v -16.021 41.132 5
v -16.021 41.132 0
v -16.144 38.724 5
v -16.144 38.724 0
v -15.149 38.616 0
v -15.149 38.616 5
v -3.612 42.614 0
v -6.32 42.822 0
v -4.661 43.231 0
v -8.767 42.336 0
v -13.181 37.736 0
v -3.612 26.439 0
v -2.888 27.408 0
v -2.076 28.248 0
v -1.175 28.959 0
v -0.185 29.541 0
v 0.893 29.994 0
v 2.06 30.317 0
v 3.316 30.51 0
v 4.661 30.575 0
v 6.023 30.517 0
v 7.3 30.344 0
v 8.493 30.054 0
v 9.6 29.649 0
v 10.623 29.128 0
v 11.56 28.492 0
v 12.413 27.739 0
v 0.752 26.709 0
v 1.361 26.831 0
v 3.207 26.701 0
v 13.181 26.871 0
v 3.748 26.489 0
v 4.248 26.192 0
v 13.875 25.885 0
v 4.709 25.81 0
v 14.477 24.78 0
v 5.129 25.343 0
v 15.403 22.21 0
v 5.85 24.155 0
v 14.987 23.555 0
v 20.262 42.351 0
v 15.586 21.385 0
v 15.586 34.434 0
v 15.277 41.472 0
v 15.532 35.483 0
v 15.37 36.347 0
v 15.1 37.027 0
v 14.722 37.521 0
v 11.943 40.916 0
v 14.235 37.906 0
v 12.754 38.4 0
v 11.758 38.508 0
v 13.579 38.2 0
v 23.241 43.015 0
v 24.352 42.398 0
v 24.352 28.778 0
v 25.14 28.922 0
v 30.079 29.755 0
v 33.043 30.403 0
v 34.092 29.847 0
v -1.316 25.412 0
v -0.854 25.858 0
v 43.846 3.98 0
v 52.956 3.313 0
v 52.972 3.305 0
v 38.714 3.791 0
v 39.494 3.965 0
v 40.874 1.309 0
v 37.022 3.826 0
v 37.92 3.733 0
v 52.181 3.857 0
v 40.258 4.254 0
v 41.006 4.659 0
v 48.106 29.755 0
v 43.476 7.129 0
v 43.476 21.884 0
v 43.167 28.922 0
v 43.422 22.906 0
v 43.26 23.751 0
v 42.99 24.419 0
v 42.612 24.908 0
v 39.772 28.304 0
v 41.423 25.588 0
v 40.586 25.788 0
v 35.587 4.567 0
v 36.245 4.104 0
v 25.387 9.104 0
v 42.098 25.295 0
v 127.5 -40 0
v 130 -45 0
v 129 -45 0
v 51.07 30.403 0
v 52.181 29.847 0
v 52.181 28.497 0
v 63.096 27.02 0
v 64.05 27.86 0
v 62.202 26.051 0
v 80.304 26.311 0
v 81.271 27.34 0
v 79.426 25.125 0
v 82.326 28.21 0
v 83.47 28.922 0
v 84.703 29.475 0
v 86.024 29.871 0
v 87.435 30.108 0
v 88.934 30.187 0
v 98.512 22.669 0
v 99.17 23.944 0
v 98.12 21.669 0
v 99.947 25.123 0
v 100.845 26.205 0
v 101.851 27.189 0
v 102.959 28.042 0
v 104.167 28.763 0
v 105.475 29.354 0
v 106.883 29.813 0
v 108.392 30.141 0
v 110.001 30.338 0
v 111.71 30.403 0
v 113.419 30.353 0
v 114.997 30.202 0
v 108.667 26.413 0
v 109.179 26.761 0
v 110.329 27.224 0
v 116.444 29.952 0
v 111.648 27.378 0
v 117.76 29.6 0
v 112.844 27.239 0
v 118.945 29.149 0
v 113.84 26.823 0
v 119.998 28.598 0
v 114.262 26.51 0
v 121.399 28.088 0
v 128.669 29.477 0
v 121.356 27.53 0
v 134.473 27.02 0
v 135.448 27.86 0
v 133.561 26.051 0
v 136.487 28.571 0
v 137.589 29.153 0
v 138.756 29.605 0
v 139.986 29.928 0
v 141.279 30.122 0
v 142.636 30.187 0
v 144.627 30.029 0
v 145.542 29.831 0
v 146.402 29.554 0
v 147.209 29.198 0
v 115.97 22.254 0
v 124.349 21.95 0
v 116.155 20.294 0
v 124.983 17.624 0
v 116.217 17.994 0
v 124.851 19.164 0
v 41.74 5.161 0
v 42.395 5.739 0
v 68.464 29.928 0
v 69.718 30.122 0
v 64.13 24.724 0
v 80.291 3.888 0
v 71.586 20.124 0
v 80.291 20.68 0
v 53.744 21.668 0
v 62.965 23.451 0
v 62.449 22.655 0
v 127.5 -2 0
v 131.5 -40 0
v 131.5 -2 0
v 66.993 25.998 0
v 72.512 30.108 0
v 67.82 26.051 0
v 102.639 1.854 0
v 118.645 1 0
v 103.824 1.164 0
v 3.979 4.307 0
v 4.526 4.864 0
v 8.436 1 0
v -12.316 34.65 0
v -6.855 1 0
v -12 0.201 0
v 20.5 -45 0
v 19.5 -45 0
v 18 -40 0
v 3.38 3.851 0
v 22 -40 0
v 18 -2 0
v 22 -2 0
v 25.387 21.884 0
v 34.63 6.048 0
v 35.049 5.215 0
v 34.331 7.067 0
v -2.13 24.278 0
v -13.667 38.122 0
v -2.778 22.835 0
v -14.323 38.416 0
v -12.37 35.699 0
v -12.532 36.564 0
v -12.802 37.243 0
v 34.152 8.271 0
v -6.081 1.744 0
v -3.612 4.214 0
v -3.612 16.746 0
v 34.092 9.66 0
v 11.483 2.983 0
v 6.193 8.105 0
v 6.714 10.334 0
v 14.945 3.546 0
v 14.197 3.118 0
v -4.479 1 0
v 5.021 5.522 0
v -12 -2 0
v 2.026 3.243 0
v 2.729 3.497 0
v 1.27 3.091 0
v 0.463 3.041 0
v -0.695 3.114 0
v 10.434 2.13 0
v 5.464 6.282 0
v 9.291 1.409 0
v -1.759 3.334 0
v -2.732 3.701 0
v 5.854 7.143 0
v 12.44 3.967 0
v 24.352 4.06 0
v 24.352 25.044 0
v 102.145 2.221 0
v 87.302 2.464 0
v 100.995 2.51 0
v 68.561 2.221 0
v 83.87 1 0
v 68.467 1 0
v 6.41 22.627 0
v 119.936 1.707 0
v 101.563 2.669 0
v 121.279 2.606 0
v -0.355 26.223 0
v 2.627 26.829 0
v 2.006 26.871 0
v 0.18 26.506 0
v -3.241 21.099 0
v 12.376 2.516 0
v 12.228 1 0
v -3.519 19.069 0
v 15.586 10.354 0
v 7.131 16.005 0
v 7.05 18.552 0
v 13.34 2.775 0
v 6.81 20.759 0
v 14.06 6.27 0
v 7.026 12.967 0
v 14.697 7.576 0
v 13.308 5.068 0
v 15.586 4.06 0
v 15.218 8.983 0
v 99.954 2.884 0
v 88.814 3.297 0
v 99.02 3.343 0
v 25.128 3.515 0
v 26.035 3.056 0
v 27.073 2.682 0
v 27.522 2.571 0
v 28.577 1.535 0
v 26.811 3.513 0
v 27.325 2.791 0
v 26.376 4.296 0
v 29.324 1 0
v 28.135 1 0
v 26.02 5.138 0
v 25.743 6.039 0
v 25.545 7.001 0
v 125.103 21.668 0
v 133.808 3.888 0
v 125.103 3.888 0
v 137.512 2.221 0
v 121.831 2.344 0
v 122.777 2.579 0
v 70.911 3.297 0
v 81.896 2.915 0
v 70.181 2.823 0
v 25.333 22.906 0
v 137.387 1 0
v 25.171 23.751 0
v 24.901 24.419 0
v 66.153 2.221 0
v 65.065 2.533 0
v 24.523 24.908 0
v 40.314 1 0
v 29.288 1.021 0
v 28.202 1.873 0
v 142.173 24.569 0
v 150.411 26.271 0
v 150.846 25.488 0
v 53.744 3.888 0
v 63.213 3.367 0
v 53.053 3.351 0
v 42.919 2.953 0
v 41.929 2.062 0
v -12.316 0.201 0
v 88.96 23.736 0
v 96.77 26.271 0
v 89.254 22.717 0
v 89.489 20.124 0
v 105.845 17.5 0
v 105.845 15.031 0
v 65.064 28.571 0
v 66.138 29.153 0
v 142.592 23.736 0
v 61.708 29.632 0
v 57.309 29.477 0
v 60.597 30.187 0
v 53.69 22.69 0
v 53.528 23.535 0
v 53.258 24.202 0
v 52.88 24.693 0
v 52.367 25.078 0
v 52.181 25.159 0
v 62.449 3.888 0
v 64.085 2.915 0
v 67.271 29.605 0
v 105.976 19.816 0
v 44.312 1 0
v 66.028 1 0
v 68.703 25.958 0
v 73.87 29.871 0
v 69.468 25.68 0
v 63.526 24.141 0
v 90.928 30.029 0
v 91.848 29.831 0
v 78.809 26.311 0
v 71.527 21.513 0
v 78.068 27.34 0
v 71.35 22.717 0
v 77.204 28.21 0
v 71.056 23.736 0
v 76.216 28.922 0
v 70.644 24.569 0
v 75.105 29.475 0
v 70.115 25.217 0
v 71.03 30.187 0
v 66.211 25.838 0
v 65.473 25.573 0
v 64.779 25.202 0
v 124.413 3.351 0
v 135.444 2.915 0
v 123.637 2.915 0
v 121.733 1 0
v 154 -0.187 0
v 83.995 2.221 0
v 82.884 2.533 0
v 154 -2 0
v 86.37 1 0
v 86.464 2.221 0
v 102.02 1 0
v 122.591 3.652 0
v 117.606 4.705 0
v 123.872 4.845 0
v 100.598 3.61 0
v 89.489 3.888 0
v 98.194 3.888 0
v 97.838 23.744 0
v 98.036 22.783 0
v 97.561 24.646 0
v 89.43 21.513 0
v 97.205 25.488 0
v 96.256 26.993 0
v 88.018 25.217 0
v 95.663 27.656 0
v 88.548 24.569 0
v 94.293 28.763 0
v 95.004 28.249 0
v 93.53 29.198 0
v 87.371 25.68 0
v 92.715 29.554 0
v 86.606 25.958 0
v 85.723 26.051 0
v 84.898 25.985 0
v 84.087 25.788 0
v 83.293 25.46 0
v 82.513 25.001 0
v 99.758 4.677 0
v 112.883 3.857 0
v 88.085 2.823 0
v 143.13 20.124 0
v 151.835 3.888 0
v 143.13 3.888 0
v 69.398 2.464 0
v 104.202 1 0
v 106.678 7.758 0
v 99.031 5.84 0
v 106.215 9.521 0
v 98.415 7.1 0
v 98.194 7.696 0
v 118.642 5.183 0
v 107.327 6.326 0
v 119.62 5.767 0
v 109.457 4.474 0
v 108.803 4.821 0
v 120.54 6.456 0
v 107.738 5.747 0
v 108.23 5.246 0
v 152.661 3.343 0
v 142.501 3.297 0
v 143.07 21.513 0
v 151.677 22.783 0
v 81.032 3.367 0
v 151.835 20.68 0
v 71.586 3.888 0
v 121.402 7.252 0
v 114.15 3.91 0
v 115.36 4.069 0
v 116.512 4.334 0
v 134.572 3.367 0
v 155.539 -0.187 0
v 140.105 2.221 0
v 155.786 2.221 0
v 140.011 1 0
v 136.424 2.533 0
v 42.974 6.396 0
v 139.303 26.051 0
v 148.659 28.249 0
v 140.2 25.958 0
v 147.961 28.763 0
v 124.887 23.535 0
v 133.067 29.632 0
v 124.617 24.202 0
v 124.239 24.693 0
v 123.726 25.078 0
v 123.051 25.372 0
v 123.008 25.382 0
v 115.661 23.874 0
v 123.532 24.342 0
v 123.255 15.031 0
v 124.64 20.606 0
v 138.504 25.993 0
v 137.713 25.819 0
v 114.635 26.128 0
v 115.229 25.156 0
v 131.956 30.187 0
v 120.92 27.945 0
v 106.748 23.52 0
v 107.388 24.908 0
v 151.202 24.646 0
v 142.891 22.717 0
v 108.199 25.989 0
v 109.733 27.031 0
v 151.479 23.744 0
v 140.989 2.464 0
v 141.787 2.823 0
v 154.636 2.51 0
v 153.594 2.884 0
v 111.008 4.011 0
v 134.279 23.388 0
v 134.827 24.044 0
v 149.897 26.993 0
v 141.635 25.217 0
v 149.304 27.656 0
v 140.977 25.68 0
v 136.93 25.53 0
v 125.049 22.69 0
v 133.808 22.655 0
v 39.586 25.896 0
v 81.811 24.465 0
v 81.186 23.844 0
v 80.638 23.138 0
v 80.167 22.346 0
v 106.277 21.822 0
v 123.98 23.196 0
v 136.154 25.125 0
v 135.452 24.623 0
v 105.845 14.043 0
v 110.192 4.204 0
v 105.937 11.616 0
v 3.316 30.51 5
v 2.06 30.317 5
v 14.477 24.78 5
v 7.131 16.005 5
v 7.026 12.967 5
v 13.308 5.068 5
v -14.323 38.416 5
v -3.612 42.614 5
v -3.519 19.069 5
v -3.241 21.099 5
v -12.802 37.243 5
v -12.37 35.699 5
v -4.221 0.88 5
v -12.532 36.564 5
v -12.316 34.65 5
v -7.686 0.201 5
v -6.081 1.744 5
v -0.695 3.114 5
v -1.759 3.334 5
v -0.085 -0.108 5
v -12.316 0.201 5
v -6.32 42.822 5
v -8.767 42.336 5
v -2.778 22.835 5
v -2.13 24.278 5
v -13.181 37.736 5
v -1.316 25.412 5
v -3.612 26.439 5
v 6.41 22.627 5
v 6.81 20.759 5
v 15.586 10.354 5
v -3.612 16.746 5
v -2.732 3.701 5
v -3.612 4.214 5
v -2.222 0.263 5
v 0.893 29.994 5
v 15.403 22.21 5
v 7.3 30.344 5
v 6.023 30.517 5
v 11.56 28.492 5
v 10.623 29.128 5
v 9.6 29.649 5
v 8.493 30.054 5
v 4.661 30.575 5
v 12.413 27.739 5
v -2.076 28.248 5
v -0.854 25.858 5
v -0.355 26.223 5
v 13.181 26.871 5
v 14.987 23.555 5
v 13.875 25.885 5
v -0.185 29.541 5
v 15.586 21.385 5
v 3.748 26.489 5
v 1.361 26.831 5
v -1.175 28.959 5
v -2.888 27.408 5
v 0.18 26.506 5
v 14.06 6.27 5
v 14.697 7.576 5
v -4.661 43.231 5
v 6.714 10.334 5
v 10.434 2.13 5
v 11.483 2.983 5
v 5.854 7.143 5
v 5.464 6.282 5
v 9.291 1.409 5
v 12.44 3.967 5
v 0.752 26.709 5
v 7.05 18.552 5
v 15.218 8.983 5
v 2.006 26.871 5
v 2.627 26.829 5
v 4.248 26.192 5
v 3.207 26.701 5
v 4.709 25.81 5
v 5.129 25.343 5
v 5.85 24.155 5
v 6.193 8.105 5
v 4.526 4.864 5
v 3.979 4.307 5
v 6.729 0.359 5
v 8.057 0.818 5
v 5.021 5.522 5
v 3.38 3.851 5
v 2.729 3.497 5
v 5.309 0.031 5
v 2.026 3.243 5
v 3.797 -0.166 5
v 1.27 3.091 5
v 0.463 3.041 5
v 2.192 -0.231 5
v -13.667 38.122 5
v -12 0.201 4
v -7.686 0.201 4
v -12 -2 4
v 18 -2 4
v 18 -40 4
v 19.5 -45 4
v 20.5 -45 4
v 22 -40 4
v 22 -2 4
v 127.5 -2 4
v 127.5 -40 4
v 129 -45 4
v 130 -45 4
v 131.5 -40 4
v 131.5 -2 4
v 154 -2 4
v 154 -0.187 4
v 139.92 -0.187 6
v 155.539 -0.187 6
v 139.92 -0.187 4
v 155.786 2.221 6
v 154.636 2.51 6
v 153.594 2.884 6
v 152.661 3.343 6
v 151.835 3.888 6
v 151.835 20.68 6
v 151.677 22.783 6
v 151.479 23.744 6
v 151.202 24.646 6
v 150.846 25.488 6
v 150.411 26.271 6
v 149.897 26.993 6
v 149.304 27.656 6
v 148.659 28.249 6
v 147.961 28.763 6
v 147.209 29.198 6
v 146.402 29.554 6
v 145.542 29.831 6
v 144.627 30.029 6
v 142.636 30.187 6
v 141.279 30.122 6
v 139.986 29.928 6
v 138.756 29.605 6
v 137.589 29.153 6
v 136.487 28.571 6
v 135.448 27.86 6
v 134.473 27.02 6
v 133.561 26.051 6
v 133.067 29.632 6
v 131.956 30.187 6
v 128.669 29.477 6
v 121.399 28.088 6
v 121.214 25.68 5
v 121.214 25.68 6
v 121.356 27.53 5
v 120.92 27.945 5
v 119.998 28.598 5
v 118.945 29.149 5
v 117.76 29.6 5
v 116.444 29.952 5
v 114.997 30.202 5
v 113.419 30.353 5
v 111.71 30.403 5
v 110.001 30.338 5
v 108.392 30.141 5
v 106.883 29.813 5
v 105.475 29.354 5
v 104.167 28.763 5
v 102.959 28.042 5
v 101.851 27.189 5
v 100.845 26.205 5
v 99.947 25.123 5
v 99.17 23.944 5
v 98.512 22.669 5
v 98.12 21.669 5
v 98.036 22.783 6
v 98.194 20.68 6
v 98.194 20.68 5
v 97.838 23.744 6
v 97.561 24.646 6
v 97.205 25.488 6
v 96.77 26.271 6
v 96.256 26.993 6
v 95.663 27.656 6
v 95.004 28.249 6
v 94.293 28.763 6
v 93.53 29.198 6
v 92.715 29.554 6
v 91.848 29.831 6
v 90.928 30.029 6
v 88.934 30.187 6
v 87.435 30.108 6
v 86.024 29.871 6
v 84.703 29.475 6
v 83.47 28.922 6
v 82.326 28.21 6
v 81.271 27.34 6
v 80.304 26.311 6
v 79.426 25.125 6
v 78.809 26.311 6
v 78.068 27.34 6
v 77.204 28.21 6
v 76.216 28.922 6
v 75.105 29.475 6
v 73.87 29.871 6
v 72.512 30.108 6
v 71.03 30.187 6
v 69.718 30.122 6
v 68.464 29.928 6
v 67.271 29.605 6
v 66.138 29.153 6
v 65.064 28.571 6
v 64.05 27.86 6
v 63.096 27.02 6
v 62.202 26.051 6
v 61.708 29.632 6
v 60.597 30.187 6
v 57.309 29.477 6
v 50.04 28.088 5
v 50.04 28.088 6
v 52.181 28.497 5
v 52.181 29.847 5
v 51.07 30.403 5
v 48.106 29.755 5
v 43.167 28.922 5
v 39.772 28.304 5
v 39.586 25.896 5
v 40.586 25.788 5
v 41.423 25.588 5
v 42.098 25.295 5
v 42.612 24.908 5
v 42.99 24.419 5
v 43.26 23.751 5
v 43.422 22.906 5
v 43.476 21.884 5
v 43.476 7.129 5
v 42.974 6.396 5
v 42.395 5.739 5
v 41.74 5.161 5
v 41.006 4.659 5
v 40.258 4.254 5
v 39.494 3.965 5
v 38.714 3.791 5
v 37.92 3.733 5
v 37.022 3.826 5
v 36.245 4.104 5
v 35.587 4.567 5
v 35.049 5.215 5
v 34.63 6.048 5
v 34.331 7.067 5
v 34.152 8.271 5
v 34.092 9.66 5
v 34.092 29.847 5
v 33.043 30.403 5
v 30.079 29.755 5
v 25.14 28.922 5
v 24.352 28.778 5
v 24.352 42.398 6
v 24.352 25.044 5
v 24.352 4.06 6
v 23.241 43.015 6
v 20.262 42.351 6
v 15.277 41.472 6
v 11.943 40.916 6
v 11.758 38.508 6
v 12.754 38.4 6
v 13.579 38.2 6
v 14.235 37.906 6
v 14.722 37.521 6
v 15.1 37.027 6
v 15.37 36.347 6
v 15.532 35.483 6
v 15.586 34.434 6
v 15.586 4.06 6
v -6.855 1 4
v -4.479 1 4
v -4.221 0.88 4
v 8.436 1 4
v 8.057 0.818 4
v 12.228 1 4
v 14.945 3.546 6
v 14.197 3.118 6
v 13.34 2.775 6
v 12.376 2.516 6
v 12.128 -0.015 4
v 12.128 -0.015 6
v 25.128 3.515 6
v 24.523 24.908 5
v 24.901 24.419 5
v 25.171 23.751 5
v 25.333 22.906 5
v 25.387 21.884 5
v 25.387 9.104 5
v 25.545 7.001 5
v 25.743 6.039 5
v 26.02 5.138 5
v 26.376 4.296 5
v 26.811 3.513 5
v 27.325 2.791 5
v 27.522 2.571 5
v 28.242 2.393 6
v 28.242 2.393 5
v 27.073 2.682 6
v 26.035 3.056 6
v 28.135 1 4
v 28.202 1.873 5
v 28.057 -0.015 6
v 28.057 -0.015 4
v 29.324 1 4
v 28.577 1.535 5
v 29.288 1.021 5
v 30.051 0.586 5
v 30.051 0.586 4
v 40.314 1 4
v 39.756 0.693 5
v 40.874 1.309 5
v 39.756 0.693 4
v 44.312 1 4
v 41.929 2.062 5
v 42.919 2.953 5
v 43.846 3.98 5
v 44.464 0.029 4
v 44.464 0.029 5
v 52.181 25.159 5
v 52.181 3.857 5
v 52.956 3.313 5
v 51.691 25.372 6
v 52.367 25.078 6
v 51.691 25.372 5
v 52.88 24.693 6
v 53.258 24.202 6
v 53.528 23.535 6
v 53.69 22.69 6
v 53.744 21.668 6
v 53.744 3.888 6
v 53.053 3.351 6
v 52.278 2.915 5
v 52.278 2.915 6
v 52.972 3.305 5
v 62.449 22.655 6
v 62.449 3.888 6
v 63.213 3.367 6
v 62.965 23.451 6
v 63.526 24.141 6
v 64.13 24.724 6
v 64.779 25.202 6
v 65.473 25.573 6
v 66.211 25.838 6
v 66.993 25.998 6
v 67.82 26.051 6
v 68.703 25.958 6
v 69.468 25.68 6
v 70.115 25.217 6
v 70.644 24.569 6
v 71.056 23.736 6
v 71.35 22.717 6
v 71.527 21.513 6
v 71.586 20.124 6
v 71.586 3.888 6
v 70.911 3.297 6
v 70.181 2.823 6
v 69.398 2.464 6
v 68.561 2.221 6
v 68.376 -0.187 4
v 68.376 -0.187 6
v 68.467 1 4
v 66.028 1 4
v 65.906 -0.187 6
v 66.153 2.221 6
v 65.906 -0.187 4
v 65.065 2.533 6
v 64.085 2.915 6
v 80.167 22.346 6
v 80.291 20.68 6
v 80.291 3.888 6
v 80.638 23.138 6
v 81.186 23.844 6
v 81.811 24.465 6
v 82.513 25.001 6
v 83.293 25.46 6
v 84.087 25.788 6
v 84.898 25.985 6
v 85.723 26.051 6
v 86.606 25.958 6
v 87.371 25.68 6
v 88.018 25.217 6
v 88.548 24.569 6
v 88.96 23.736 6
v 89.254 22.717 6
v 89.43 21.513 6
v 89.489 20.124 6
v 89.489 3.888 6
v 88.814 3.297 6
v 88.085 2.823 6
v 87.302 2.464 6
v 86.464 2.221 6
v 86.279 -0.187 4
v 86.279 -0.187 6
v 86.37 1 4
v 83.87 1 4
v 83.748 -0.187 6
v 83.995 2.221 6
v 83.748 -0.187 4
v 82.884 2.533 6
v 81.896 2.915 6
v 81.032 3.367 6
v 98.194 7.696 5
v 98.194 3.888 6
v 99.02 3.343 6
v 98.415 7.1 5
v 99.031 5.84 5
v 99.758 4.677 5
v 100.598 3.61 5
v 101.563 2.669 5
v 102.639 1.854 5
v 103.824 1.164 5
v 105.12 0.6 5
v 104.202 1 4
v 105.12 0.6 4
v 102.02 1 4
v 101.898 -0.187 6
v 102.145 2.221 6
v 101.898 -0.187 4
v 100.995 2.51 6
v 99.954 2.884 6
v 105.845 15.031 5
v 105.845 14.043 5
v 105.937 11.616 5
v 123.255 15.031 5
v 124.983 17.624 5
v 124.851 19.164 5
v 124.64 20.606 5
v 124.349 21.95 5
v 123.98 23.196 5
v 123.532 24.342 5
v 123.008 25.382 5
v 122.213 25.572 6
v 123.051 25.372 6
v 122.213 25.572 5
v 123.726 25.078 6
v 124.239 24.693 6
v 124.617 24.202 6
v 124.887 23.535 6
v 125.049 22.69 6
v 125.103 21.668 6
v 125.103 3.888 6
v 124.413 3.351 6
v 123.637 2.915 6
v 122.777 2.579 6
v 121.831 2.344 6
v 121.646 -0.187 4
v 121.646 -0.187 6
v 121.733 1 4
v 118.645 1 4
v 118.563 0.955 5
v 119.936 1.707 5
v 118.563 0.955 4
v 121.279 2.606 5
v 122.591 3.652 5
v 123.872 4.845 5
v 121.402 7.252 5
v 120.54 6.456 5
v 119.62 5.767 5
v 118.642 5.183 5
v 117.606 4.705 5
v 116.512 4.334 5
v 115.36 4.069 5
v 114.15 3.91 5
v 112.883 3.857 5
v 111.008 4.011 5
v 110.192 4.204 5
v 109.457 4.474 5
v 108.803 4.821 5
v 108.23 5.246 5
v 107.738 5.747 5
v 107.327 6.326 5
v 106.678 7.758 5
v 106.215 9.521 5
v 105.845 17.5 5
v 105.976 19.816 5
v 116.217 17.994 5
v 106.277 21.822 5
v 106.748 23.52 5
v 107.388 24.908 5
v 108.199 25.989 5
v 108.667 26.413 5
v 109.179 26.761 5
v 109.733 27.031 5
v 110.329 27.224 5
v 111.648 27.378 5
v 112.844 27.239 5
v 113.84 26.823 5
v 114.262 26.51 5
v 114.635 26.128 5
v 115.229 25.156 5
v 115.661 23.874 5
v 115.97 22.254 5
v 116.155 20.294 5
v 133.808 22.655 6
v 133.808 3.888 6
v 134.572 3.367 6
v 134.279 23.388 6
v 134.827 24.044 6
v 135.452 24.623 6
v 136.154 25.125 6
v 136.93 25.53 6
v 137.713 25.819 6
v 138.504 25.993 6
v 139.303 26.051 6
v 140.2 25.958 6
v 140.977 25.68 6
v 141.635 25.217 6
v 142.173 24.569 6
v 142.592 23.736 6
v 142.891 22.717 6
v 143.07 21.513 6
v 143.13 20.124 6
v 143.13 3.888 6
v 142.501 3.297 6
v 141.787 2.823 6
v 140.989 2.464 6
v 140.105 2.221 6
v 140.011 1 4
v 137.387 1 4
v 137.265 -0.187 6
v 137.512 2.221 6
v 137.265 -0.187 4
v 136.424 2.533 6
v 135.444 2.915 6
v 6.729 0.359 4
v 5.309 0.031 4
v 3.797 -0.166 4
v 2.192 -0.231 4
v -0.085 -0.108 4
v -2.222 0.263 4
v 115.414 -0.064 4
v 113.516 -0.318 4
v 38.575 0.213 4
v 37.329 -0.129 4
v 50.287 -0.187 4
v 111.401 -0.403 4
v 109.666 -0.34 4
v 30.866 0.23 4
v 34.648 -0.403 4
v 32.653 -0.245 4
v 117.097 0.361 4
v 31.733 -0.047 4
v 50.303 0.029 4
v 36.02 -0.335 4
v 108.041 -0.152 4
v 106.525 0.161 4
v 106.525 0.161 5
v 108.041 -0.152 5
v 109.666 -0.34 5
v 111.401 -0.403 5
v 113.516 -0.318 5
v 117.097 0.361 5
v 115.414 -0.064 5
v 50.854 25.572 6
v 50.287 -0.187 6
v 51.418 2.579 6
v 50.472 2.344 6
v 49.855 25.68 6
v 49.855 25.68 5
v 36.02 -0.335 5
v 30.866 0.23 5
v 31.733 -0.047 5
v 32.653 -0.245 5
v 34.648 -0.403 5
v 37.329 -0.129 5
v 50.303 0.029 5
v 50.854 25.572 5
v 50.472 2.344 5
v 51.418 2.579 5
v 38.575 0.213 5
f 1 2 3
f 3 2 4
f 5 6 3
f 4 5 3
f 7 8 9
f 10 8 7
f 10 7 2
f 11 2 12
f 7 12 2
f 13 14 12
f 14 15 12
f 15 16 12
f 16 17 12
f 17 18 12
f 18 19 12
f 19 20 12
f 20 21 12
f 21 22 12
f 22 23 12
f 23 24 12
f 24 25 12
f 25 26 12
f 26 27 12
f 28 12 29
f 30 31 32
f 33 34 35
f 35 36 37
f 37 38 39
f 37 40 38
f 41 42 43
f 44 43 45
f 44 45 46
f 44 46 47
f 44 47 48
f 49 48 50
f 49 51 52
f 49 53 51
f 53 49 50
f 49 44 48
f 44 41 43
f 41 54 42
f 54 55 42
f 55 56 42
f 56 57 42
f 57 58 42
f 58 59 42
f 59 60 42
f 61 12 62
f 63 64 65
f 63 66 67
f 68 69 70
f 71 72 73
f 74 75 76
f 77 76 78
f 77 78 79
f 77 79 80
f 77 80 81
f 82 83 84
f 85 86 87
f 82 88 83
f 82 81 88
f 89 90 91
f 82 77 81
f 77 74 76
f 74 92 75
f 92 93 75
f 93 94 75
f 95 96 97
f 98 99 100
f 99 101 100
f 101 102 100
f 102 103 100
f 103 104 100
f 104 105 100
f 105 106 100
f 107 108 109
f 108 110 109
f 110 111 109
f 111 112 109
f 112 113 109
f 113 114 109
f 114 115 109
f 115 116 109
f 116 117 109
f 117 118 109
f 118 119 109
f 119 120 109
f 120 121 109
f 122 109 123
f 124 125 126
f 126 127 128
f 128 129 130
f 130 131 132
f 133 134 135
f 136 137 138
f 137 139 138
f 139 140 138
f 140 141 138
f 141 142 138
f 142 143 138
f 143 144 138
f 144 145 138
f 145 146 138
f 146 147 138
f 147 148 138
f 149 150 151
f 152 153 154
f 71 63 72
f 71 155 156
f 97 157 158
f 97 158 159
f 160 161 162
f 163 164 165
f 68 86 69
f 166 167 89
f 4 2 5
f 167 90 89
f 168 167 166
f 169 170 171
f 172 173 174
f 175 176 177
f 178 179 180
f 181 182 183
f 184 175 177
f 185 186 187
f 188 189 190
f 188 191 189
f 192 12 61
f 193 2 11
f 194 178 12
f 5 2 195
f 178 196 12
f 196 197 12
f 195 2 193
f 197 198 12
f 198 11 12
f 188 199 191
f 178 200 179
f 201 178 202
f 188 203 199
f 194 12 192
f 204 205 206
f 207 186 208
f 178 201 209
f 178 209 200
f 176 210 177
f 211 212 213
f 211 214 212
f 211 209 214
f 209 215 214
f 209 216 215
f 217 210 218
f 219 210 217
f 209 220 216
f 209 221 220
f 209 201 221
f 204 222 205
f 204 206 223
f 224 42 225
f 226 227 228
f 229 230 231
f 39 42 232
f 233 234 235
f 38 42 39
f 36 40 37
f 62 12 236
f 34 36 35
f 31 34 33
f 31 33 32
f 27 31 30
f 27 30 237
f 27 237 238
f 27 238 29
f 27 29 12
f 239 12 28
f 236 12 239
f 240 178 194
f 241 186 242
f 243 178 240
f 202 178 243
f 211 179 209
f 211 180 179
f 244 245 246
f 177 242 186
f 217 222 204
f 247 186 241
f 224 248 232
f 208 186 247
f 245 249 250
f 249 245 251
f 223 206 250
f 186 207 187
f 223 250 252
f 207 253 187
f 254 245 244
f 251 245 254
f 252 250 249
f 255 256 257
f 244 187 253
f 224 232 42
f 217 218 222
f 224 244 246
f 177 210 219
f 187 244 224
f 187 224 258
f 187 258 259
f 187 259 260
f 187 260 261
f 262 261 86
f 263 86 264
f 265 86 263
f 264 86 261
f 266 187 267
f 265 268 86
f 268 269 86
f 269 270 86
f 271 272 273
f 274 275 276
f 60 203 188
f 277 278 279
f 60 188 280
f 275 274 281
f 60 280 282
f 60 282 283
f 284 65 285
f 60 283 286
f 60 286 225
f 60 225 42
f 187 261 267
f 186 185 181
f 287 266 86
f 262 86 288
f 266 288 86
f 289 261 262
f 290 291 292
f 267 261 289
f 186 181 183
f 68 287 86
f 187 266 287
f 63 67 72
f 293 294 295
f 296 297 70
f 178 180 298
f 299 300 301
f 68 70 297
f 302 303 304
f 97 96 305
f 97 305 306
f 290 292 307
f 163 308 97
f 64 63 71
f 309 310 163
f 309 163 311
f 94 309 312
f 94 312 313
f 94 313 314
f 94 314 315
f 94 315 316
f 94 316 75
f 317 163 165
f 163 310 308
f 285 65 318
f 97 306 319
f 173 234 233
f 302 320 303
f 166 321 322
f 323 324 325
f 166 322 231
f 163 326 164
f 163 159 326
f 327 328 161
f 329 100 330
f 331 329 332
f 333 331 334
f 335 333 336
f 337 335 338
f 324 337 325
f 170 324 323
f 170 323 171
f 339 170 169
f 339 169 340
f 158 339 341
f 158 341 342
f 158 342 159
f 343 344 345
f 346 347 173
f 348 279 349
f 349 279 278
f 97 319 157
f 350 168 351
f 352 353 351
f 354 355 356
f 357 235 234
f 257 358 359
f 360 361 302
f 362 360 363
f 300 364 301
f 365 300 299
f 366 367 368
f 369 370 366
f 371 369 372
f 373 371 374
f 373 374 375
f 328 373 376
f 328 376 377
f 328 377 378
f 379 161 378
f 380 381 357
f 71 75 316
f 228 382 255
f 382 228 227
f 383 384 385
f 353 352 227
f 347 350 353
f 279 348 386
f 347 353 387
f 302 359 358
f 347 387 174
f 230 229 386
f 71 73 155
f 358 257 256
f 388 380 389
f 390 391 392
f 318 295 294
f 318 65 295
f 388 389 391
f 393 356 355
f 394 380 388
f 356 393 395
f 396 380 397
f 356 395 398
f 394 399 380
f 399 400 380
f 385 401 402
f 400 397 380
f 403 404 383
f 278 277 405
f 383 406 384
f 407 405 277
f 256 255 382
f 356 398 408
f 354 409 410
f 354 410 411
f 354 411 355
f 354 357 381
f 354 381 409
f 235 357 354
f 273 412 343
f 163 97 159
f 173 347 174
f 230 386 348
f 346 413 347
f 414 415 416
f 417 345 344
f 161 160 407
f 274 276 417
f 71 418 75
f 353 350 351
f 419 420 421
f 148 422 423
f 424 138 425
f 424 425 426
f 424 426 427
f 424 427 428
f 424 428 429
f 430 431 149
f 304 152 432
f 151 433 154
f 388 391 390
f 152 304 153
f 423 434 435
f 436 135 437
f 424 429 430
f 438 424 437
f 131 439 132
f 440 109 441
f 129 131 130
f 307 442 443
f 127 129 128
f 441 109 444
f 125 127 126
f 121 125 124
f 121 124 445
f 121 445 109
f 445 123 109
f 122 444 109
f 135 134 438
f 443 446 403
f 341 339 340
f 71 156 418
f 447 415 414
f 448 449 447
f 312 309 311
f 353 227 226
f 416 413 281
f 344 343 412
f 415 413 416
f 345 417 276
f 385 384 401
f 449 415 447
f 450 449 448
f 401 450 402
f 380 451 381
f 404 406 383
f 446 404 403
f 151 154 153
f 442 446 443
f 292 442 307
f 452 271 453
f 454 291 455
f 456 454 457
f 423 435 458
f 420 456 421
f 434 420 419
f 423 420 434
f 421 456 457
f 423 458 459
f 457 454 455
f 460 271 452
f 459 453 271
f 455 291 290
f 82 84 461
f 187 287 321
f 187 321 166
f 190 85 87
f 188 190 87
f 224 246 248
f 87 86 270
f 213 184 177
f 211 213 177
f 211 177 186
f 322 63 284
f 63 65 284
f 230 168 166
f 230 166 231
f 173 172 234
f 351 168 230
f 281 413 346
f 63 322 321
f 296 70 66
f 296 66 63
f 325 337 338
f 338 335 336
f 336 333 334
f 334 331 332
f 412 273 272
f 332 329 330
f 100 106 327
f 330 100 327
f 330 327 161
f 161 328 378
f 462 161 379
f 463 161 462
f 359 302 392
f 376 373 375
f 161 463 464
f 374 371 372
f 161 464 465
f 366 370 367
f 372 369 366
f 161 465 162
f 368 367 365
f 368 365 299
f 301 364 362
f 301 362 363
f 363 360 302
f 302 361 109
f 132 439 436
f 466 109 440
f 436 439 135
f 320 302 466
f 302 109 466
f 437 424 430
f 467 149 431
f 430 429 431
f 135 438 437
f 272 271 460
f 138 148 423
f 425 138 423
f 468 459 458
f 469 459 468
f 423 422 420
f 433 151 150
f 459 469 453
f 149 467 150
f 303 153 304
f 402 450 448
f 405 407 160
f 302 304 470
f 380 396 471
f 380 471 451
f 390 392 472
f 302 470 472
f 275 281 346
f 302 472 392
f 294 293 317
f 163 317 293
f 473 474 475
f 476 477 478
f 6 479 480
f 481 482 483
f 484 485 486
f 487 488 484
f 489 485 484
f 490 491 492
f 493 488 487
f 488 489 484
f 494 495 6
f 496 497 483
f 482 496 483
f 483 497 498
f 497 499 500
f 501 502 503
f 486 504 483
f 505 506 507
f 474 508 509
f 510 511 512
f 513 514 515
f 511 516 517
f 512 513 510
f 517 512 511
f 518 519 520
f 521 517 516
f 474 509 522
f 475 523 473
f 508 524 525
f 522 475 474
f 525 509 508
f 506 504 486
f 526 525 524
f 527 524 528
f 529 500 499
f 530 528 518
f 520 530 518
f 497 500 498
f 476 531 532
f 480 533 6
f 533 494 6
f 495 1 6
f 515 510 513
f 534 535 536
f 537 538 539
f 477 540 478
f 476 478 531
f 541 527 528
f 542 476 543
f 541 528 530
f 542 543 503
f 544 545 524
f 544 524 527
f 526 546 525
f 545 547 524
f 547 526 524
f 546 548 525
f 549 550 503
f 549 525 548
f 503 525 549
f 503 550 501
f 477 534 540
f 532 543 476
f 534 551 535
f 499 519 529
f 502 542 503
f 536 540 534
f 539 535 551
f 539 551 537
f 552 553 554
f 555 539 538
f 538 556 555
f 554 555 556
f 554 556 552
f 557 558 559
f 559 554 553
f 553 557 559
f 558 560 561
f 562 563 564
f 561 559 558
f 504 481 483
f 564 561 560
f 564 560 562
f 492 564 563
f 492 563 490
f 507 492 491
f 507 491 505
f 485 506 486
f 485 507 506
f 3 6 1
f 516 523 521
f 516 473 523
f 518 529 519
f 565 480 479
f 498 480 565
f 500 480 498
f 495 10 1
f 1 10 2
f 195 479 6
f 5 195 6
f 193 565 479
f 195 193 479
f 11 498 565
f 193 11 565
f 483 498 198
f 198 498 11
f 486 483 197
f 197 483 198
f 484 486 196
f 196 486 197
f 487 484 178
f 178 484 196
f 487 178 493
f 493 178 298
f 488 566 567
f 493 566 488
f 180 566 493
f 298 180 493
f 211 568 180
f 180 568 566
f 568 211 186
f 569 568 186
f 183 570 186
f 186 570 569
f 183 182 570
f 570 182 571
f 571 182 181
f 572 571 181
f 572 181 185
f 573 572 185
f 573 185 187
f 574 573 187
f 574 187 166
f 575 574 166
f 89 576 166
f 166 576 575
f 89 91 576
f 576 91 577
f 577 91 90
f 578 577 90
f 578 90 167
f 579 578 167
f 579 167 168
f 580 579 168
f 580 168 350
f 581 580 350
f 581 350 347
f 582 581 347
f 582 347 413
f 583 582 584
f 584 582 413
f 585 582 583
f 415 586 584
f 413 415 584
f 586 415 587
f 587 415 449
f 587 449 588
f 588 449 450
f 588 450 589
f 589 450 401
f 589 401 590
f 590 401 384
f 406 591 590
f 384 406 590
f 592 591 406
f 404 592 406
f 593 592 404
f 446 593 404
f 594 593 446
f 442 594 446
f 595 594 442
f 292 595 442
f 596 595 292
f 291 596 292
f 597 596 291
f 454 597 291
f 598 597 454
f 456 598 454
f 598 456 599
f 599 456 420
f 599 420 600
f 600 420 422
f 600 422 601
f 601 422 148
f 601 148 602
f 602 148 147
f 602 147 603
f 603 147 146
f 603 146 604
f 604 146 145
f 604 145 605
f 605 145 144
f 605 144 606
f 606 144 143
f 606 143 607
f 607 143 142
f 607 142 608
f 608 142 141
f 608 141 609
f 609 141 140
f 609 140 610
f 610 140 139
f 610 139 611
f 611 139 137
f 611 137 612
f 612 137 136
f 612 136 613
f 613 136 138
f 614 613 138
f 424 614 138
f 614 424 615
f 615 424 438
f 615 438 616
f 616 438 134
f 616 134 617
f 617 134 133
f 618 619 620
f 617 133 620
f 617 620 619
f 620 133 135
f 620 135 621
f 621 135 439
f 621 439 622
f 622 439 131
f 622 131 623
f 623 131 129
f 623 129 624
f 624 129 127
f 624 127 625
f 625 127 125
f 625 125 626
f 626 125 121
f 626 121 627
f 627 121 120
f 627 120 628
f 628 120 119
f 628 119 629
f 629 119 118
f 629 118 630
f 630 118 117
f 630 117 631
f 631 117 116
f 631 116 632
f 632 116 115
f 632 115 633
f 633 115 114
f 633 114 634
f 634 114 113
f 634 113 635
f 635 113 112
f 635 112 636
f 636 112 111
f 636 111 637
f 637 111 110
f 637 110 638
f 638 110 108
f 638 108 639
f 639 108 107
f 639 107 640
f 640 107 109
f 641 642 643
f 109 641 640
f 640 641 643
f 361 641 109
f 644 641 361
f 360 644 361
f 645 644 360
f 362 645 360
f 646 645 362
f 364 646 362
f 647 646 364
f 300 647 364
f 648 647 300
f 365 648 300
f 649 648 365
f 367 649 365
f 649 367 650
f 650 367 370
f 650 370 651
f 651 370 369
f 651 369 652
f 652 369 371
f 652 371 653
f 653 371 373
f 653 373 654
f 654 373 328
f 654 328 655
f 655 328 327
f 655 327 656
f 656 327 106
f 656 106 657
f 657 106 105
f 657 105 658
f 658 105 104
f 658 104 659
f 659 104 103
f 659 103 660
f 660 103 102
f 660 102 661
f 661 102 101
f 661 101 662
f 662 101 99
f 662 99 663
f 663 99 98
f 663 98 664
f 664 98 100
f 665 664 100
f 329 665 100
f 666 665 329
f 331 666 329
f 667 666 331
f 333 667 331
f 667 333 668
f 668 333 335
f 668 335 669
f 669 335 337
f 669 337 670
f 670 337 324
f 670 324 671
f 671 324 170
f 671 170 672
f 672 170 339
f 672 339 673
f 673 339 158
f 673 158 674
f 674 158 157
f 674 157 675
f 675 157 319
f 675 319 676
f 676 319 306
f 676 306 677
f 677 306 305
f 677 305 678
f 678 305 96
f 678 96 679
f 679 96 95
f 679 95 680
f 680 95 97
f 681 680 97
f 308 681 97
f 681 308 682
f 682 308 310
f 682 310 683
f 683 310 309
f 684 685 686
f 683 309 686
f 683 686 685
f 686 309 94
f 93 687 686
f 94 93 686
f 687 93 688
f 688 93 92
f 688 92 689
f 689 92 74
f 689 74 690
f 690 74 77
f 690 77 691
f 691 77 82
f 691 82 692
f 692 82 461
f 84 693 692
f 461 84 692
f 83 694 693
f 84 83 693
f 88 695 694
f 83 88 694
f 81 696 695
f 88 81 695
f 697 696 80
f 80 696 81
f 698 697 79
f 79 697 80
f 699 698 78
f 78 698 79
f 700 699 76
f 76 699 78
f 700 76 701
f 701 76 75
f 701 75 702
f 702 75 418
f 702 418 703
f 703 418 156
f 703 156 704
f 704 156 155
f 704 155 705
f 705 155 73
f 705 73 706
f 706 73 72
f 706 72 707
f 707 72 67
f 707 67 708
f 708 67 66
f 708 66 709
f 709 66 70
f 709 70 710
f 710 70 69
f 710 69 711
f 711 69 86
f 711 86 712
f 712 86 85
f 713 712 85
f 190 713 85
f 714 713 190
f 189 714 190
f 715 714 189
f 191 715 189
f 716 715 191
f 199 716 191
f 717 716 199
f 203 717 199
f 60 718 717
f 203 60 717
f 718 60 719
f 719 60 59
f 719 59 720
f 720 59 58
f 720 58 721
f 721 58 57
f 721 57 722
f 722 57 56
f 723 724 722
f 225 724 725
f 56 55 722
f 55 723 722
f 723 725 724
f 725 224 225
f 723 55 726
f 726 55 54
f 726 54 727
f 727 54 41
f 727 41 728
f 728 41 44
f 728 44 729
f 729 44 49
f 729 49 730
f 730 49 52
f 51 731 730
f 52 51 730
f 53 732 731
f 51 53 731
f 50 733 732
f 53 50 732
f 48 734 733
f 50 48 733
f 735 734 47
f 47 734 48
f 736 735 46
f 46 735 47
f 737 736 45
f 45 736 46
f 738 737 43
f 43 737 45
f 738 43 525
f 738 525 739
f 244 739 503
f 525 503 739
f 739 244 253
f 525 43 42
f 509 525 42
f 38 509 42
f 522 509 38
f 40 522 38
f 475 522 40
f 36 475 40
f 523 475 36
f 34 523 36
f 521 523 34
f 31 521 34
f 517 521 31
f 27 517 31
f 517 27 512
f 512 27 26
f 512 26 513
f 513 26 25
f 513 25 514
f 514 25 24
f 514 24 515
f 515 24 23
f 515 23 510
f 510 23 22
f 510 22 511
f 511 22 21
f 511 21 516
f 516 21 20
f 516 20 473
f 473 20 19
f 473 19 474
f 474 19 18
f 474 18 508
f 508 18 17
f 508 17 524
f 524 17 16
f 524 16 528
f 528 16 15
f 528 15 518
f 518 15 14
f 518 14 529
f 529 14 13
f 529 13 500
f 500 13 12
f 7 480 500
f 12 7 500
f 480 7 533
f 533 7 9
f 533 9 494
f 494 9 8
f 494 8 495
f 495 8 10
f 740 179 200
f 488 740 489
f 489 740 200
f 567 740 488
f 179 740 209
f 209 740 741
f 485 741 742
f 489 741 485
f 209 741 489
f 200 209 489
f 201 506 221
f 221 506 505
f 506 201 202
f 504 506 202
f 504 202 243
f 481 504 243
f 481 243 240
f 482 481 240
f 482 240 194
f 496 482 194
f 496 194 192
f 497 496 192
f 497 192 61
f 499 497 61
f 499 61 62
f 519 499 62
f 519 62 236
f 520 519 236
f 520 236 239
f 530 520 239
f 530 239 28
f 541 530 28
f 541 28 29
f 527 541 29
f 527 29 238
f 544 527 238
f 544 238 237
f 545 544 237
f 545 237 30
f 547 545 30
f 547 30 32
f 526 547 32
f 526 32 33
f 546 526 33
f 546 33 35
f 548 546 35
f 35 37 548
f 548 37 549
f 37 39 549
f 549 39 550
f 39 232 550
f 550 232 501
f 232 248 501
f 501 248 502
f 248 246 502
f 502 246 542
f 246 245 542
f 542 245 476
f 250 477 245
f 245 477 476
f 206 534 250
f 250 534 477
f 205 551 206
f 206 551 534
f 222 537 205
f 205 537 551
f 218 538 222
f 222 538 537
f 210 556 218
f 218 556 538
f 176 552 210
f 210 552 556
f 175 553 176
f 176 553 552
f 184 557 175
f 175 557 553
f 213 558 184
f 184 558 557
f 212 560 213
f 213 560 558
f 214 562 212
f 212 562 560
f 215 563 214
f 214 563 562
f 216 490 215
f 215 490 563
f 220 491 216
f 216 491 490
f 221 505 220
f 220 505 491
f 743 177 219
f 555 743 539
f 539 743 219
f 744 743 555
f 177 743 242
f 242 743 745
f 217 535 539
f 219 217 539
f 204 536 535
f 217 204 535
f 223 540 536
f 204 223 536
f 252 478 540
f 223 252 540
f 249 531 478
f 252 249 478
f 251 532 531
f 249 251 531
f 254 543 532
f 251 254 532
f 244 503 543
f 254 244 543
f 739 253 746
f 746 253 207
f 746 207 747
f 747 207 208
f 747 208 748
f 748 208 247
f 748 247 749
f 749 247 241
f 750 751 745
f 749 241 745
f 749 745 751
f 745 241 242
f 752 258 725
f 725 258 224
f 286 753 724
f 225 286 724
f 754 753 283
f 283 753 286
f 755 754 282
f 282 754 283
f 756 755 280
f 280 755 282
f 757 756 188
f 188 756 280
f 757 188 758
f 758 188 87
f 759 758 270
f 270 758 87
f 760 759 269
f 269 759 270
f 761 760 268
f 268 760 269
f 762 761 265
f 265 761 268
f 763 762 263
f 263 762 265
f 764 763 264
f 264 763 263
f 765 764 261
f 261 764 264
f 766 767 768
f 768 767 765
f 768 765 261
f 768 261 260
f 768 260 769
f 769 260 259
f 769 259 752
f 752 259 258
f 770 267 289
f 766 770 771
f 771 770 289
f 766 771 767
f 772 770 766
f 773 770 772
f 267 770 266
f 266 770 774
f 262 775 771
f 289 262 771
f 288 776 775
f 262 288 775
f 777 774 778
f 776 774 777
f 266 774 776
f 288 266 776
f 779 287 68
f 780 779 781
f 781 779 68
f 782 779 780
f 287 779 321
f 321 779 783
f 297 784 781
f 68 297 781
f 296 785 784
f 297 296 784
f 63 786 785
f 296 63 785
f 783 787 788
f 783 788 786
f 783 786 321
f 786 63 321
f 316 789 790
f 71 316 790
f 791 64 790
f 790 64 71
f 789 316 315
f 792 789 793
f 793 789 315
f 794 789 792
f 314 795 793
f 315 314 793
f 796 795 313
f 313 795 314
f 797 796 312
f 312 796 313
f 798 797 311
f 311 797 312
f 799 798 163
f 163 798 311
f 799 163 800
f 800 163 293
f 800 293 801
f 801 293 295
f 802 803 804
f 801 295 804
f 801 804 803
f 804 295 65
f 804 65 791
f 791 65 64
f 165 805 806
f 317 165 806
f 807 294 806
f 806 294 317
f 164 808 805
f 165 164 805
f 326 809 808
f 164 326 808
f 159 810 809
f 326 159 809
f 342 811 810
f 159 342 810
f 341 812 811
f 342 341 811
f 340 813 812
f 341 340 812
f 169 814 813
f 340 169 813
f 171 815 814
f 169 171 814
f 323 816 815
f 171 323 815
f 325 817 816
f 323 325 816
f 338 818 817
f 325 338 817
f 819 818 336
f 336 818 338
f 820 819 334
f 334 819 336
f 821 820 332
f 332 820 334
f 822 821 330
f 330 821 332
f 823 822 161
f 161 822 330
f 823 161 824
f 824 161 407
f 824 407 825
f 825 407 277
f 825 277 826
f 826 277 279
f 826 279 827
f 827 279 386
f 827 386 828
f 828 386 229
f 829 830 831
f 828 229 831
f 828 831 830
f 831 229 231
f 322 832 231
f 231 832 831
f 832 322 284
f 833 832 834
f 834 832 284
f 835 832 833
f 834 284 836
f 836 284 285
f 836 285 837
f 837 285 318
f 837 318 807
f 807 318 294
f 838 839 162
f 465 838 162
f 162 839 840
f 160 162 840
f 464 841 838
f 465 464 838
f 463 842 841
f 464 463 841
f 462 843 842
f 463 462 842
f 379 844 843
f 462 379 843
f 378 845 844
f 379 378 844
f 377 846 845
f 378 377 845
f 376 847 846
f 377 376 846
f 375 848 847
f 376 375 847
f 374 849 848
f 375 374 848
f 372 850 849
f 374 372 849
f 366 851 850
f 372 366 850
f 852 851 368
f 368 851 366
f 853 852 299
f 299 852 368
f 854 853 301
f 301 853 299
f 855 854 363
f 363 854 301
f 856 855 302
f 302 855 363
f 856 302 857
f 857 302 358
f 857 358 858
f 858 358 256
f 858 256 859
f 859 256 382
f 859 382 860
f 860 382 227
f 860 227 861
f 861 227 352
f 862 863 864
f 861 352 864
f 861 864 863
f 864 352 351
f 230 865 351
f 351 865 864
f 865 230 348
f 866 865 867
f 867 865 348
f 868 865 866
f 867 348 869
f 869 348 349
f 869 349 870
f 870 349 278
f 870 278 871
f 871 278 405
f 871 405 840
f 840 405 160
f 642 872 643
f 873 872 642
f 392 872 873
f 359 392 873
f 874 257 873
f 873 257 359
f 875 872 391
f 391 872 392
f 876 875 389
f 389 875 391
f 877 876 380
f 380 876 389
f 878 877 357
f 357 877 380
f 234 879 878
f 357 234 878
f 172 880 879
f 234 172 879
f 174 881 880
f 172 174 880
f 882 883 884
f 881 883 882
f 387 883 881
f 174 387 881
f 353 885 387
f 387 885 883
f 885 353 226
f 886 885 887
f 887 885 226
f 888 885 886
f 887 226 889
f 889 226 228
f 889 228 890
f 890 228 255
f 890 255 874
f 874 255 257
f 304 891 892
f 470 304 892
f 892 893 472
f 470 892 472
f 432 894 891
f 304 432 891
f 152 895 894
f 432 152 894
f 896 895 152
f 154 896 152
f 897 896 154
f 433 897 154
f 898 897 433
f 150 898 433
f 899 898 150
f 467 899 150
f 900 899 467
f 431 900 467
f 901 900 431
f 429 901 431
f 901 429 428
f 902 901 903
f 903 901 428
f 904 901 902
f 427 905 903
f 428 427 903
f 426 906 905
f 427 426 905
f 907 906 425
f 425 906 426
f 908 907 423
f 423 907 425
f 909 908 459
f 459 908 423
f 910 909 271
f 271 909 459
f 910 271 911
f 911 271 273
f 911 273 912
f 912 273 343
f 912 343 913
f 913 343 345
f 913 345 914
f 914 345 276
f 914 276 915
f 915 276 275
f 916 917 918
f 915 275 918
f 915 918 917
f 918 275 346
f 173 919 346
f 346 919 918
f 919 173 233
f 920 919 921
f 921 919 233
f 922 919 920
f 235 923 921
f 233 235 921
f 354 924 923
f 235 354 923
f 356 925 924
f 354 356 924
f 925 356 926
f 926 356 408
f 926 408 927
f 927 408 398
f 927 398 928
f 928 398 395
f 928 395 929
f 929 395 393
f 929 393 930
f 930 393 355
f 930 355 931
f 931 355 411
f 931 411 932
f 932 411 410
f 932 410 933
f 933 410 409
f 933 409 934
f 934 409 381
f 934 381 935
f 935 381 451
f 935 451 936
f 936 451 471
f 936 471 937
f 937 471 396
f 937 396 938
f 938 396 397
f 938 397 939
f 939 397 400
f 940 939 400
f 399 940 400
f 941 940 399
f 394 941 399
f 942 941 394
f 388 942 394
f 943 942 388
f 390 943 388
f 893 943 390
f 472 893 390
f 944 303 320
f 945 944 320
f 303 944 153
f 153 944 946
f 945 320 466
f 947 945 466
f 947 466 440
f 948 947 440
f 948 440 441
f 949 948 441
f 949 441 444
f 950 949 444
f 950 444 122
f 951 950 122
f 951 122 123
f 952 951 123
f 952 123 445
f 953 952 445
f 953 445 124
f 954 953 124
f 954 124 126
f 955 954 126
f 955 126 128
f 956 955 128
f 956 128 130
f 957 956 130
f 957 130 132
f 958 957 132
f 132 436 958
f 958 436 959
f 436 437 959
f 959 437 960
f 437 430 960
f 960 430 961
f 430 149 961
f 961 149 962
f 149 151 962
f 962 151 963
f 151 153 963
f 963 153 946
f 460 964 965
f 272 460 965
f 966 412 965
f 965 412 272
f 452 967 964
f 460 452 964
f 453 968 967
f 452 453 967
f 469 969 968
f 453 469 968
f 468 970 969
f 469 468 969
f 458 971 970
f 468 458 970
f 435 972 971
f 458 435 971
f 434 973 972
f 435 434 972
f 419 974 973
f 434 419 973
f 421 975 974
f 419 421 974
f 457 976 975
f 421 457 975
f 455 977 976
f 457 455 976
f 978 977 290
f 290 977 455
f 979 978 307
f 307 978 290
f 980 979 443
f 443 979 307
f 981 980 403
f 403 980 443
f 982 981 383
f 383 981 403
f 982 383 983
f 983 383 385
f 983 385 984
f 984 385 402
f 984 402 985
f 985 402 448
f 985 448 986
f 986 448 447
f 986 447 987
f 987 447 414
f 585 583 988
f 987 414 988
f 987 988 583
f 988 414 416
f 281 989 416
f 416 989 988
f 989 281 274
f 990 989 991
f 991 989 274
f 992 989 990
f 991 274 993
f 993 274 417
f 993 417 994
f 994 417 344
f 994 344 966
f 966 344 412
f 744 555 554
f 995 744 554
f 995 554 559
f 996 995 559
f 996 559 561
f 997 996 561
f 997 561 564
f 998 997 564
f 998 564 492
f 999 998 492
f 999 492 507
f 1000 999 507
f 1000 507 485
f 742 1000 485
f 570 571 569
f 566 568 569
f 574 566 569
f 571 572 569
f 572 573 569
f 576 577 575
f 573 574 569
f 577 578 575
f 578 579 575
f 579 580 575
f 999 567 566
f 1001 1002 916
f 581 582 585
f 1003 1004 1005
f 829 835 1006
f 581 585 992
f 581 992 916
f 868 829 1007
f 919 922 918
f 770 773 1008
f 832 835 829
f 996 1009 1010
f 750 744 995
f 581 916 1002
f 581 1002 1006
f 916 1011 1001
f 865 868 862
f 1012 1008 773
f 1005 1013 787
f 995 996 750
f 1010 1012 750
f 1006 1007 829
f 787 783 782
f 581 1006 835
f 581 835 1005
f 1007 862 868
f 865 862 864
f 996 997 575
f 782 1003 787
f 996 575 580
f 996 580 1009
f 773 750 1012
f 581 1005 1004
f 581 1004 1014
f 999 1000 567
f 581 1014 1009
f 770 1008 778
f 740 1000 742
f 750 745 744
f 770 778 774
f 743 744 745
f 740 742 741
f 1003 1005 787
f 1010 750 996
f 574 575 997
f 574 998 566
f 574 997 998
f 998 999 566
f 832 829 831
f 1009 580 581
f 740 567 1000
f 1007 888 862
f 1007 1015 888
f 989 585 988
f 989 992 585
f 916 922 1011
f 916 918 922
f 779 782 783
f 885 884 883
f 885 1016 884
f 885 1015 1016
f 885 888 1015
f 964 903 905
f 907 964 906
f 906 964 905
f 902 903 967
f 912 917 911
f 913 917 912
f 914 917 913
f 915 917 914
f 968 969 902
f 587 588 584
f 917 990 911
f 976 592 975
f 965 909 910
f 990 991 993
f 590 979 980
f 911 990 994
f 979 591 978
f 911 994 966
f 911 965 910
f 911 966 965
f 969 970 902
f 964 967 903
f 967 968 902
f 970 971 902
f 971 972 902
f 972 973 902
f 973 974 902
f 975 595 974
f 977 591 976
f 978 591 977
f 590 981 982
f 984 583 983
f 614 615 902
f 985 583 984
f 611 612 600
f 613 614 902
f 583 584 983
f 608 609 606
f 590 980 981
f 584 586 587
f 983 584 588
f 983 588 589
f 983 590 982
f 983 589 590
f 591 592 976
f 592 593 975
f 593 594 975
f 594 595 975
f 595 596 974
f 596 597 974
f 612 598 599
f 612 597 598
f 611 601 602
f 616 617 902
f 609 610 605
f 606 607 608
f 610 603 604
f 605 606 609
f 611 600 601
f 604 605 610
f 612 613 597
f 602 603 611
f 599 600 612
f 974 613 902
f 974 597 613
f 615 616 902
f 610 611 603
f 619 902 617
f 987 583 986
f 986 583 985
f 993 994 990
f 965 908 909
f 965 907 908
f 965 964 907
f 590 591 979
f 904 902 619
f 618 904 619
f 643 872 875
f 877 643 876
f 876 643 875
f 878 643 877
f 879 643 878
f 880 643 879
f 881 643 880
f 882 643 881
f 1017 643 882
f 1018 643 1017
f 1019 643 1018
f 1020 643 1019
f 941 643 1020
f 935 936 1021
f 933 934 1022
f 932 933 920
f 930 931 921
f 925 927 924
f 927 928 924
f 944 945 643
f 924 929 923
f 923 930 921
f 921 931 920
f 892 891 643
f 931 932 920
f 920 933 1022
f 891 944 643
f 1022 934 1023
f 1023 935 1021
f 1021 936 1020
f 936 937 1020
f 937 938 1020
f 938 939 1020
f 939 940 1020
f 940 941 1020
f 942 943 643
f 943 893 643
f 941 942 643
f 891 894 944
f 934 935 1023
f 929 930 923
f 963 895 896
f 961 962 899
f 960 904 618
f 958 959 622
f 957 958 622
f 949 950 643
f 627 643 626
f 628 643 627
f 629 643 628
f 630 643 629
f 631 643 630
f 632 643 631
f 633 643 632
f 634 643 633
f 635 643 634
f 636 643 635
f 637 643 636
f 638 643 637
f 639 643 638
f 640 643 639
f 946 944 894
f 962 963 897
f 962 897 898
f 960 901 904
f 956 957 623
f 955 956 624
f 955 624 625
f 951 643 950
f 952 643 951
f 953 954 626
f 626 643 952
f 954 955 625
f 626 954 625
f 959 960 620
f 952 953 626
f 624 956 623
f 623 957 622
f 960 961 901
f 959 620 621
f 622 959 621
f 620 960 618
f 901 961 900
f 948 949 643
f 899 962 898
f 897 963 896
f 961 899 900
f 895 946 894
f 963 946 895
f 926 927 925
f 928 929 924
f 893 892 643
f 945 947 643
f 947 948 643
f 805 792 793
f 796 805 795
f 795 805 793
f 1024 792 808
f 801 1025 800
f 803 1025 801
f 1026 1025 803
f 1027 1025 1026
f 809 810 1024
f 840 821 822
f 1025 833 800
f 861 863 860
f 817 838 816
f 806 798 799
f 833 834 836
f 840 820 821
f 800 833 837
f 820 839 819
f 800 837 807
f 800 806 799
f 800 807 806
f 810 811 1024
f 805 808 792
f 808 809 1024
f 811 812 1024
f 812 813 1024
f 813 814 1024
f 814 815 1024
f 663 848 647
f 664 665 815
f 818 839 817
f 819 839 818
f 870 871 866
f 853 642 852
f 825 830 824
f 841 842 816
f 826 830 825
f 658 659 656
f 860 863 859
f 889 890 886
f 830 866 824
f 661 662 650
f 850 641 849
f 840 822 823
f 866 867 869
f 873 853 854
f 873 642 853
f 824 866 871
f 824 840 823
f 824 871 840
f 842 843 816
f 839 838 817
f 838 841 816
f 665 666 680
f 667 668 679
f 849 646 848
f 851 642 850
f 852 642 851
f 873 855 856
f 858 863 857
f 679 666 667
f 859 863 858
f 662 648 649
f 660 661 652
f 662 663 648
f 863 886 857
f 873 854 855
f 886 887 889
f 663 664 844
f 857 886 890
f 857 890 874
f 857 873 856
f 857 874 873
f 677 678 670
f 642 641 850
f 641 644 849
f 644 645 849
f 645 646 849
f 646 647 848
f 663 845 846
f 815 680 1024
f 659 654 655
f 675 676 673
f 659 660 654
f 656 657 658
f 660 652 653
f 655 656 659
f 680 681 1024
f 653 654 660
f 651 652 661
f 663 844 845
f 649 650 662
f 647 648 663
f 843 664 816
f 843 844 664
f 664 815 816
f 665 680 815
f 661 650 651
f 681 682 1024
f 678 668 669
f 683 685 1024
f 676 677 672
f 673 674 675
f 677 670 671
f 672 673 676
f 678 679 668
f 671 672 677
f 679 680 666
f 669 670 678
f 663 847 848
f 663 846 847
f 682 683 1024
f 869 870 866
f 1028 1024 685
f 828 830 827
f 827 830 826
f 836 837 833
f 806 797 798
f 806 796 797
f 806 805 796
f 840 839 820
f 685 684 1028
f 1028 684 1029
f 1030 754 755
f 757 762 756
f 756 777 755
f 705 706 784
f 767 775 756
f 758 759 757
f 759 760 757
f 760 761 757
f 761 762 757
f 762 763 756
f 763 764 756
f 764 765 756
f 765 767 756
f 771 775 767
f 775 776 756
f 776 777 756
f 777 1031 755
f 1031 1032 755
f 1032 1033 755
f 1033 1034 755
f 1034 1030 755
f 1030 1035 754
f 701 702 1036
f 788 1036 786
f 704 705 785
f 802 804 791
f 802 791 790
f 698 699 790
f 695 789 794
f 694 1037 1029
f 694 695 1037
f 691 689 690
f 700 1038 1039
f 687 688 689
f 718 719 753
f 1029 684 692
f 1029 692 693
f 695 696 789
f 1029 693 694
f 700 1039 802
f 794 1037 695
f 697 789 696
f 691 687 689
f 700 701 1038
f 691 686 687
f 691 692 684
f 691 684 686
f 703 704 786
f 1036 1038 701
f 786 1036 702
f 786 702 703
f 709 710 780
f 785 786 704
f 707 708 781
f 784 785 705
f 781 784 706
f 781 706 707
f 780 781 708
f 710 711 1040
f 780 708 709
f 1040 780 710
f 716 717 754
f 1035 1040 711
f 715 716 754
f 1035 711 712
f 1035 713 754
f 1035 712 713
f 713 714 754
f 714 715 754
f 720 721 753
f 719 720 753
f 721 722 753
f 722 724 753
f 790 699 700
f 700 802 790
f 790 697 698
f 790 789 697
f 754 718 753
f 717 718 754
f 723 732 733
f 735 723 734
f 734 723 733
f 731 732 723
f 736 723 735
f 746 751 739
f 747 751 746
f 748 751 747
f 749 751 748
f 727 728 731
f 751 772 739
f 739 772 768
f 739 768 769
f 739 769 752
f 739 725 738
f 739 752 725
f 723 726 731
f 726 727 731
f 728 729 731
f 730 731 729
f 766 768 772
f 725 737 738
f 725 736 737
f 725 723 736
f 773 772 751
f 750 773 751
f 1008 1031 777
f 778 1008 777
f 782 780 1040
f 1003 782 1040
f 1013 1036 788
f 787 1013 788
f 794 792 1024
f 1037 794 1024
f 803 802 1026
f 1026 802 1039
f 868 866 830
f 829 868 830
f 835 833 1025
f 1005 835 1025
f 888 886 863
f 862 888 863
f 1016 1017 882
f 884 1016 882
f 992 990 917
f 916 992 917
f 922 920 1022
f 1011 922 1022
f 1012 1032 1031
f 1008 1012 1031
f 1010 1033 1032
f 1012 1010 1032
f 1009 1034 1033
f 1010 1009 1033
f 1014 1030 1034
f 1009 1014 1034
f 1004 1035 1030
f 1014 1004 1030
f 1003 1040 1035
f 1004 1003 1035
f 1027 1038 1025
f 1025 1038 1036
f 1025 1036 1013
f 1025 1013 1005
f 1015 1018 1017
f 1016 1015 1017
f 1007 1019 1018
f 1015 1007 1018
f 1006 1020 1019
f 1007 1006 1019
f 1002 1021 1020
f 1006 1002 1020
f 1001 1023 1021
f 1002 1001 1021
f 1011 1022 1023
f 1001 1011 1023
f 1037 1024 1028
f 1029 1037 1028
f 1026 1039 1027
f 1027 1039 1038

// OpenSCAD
fudge = 0.1;


include <letters.scad>;

module nail(l,w,h){
	hull(){
	translate([-w/2,5,0]) cube([w,l,h]);
	translate([-0.5,0,0]) cube([1,1,h]);
	}
}

translate([0,21.5,0]) letter_b(5);
translate([20,21.5,0]) letter_l(6);
translate([39,15,0]) letter_u(5);
translate([76,15.0,0]) letter_m(6);
translate([111,15,0]) letter_e(5);
translate([138.5,15.0,0]) letter_n(6);


translate([-12,-2,0]) cube([166,3,4]);

translate([20,-45,0]) nail(40,4,4);
translate([129.5,-45,0]) nail(40,4,4);	
